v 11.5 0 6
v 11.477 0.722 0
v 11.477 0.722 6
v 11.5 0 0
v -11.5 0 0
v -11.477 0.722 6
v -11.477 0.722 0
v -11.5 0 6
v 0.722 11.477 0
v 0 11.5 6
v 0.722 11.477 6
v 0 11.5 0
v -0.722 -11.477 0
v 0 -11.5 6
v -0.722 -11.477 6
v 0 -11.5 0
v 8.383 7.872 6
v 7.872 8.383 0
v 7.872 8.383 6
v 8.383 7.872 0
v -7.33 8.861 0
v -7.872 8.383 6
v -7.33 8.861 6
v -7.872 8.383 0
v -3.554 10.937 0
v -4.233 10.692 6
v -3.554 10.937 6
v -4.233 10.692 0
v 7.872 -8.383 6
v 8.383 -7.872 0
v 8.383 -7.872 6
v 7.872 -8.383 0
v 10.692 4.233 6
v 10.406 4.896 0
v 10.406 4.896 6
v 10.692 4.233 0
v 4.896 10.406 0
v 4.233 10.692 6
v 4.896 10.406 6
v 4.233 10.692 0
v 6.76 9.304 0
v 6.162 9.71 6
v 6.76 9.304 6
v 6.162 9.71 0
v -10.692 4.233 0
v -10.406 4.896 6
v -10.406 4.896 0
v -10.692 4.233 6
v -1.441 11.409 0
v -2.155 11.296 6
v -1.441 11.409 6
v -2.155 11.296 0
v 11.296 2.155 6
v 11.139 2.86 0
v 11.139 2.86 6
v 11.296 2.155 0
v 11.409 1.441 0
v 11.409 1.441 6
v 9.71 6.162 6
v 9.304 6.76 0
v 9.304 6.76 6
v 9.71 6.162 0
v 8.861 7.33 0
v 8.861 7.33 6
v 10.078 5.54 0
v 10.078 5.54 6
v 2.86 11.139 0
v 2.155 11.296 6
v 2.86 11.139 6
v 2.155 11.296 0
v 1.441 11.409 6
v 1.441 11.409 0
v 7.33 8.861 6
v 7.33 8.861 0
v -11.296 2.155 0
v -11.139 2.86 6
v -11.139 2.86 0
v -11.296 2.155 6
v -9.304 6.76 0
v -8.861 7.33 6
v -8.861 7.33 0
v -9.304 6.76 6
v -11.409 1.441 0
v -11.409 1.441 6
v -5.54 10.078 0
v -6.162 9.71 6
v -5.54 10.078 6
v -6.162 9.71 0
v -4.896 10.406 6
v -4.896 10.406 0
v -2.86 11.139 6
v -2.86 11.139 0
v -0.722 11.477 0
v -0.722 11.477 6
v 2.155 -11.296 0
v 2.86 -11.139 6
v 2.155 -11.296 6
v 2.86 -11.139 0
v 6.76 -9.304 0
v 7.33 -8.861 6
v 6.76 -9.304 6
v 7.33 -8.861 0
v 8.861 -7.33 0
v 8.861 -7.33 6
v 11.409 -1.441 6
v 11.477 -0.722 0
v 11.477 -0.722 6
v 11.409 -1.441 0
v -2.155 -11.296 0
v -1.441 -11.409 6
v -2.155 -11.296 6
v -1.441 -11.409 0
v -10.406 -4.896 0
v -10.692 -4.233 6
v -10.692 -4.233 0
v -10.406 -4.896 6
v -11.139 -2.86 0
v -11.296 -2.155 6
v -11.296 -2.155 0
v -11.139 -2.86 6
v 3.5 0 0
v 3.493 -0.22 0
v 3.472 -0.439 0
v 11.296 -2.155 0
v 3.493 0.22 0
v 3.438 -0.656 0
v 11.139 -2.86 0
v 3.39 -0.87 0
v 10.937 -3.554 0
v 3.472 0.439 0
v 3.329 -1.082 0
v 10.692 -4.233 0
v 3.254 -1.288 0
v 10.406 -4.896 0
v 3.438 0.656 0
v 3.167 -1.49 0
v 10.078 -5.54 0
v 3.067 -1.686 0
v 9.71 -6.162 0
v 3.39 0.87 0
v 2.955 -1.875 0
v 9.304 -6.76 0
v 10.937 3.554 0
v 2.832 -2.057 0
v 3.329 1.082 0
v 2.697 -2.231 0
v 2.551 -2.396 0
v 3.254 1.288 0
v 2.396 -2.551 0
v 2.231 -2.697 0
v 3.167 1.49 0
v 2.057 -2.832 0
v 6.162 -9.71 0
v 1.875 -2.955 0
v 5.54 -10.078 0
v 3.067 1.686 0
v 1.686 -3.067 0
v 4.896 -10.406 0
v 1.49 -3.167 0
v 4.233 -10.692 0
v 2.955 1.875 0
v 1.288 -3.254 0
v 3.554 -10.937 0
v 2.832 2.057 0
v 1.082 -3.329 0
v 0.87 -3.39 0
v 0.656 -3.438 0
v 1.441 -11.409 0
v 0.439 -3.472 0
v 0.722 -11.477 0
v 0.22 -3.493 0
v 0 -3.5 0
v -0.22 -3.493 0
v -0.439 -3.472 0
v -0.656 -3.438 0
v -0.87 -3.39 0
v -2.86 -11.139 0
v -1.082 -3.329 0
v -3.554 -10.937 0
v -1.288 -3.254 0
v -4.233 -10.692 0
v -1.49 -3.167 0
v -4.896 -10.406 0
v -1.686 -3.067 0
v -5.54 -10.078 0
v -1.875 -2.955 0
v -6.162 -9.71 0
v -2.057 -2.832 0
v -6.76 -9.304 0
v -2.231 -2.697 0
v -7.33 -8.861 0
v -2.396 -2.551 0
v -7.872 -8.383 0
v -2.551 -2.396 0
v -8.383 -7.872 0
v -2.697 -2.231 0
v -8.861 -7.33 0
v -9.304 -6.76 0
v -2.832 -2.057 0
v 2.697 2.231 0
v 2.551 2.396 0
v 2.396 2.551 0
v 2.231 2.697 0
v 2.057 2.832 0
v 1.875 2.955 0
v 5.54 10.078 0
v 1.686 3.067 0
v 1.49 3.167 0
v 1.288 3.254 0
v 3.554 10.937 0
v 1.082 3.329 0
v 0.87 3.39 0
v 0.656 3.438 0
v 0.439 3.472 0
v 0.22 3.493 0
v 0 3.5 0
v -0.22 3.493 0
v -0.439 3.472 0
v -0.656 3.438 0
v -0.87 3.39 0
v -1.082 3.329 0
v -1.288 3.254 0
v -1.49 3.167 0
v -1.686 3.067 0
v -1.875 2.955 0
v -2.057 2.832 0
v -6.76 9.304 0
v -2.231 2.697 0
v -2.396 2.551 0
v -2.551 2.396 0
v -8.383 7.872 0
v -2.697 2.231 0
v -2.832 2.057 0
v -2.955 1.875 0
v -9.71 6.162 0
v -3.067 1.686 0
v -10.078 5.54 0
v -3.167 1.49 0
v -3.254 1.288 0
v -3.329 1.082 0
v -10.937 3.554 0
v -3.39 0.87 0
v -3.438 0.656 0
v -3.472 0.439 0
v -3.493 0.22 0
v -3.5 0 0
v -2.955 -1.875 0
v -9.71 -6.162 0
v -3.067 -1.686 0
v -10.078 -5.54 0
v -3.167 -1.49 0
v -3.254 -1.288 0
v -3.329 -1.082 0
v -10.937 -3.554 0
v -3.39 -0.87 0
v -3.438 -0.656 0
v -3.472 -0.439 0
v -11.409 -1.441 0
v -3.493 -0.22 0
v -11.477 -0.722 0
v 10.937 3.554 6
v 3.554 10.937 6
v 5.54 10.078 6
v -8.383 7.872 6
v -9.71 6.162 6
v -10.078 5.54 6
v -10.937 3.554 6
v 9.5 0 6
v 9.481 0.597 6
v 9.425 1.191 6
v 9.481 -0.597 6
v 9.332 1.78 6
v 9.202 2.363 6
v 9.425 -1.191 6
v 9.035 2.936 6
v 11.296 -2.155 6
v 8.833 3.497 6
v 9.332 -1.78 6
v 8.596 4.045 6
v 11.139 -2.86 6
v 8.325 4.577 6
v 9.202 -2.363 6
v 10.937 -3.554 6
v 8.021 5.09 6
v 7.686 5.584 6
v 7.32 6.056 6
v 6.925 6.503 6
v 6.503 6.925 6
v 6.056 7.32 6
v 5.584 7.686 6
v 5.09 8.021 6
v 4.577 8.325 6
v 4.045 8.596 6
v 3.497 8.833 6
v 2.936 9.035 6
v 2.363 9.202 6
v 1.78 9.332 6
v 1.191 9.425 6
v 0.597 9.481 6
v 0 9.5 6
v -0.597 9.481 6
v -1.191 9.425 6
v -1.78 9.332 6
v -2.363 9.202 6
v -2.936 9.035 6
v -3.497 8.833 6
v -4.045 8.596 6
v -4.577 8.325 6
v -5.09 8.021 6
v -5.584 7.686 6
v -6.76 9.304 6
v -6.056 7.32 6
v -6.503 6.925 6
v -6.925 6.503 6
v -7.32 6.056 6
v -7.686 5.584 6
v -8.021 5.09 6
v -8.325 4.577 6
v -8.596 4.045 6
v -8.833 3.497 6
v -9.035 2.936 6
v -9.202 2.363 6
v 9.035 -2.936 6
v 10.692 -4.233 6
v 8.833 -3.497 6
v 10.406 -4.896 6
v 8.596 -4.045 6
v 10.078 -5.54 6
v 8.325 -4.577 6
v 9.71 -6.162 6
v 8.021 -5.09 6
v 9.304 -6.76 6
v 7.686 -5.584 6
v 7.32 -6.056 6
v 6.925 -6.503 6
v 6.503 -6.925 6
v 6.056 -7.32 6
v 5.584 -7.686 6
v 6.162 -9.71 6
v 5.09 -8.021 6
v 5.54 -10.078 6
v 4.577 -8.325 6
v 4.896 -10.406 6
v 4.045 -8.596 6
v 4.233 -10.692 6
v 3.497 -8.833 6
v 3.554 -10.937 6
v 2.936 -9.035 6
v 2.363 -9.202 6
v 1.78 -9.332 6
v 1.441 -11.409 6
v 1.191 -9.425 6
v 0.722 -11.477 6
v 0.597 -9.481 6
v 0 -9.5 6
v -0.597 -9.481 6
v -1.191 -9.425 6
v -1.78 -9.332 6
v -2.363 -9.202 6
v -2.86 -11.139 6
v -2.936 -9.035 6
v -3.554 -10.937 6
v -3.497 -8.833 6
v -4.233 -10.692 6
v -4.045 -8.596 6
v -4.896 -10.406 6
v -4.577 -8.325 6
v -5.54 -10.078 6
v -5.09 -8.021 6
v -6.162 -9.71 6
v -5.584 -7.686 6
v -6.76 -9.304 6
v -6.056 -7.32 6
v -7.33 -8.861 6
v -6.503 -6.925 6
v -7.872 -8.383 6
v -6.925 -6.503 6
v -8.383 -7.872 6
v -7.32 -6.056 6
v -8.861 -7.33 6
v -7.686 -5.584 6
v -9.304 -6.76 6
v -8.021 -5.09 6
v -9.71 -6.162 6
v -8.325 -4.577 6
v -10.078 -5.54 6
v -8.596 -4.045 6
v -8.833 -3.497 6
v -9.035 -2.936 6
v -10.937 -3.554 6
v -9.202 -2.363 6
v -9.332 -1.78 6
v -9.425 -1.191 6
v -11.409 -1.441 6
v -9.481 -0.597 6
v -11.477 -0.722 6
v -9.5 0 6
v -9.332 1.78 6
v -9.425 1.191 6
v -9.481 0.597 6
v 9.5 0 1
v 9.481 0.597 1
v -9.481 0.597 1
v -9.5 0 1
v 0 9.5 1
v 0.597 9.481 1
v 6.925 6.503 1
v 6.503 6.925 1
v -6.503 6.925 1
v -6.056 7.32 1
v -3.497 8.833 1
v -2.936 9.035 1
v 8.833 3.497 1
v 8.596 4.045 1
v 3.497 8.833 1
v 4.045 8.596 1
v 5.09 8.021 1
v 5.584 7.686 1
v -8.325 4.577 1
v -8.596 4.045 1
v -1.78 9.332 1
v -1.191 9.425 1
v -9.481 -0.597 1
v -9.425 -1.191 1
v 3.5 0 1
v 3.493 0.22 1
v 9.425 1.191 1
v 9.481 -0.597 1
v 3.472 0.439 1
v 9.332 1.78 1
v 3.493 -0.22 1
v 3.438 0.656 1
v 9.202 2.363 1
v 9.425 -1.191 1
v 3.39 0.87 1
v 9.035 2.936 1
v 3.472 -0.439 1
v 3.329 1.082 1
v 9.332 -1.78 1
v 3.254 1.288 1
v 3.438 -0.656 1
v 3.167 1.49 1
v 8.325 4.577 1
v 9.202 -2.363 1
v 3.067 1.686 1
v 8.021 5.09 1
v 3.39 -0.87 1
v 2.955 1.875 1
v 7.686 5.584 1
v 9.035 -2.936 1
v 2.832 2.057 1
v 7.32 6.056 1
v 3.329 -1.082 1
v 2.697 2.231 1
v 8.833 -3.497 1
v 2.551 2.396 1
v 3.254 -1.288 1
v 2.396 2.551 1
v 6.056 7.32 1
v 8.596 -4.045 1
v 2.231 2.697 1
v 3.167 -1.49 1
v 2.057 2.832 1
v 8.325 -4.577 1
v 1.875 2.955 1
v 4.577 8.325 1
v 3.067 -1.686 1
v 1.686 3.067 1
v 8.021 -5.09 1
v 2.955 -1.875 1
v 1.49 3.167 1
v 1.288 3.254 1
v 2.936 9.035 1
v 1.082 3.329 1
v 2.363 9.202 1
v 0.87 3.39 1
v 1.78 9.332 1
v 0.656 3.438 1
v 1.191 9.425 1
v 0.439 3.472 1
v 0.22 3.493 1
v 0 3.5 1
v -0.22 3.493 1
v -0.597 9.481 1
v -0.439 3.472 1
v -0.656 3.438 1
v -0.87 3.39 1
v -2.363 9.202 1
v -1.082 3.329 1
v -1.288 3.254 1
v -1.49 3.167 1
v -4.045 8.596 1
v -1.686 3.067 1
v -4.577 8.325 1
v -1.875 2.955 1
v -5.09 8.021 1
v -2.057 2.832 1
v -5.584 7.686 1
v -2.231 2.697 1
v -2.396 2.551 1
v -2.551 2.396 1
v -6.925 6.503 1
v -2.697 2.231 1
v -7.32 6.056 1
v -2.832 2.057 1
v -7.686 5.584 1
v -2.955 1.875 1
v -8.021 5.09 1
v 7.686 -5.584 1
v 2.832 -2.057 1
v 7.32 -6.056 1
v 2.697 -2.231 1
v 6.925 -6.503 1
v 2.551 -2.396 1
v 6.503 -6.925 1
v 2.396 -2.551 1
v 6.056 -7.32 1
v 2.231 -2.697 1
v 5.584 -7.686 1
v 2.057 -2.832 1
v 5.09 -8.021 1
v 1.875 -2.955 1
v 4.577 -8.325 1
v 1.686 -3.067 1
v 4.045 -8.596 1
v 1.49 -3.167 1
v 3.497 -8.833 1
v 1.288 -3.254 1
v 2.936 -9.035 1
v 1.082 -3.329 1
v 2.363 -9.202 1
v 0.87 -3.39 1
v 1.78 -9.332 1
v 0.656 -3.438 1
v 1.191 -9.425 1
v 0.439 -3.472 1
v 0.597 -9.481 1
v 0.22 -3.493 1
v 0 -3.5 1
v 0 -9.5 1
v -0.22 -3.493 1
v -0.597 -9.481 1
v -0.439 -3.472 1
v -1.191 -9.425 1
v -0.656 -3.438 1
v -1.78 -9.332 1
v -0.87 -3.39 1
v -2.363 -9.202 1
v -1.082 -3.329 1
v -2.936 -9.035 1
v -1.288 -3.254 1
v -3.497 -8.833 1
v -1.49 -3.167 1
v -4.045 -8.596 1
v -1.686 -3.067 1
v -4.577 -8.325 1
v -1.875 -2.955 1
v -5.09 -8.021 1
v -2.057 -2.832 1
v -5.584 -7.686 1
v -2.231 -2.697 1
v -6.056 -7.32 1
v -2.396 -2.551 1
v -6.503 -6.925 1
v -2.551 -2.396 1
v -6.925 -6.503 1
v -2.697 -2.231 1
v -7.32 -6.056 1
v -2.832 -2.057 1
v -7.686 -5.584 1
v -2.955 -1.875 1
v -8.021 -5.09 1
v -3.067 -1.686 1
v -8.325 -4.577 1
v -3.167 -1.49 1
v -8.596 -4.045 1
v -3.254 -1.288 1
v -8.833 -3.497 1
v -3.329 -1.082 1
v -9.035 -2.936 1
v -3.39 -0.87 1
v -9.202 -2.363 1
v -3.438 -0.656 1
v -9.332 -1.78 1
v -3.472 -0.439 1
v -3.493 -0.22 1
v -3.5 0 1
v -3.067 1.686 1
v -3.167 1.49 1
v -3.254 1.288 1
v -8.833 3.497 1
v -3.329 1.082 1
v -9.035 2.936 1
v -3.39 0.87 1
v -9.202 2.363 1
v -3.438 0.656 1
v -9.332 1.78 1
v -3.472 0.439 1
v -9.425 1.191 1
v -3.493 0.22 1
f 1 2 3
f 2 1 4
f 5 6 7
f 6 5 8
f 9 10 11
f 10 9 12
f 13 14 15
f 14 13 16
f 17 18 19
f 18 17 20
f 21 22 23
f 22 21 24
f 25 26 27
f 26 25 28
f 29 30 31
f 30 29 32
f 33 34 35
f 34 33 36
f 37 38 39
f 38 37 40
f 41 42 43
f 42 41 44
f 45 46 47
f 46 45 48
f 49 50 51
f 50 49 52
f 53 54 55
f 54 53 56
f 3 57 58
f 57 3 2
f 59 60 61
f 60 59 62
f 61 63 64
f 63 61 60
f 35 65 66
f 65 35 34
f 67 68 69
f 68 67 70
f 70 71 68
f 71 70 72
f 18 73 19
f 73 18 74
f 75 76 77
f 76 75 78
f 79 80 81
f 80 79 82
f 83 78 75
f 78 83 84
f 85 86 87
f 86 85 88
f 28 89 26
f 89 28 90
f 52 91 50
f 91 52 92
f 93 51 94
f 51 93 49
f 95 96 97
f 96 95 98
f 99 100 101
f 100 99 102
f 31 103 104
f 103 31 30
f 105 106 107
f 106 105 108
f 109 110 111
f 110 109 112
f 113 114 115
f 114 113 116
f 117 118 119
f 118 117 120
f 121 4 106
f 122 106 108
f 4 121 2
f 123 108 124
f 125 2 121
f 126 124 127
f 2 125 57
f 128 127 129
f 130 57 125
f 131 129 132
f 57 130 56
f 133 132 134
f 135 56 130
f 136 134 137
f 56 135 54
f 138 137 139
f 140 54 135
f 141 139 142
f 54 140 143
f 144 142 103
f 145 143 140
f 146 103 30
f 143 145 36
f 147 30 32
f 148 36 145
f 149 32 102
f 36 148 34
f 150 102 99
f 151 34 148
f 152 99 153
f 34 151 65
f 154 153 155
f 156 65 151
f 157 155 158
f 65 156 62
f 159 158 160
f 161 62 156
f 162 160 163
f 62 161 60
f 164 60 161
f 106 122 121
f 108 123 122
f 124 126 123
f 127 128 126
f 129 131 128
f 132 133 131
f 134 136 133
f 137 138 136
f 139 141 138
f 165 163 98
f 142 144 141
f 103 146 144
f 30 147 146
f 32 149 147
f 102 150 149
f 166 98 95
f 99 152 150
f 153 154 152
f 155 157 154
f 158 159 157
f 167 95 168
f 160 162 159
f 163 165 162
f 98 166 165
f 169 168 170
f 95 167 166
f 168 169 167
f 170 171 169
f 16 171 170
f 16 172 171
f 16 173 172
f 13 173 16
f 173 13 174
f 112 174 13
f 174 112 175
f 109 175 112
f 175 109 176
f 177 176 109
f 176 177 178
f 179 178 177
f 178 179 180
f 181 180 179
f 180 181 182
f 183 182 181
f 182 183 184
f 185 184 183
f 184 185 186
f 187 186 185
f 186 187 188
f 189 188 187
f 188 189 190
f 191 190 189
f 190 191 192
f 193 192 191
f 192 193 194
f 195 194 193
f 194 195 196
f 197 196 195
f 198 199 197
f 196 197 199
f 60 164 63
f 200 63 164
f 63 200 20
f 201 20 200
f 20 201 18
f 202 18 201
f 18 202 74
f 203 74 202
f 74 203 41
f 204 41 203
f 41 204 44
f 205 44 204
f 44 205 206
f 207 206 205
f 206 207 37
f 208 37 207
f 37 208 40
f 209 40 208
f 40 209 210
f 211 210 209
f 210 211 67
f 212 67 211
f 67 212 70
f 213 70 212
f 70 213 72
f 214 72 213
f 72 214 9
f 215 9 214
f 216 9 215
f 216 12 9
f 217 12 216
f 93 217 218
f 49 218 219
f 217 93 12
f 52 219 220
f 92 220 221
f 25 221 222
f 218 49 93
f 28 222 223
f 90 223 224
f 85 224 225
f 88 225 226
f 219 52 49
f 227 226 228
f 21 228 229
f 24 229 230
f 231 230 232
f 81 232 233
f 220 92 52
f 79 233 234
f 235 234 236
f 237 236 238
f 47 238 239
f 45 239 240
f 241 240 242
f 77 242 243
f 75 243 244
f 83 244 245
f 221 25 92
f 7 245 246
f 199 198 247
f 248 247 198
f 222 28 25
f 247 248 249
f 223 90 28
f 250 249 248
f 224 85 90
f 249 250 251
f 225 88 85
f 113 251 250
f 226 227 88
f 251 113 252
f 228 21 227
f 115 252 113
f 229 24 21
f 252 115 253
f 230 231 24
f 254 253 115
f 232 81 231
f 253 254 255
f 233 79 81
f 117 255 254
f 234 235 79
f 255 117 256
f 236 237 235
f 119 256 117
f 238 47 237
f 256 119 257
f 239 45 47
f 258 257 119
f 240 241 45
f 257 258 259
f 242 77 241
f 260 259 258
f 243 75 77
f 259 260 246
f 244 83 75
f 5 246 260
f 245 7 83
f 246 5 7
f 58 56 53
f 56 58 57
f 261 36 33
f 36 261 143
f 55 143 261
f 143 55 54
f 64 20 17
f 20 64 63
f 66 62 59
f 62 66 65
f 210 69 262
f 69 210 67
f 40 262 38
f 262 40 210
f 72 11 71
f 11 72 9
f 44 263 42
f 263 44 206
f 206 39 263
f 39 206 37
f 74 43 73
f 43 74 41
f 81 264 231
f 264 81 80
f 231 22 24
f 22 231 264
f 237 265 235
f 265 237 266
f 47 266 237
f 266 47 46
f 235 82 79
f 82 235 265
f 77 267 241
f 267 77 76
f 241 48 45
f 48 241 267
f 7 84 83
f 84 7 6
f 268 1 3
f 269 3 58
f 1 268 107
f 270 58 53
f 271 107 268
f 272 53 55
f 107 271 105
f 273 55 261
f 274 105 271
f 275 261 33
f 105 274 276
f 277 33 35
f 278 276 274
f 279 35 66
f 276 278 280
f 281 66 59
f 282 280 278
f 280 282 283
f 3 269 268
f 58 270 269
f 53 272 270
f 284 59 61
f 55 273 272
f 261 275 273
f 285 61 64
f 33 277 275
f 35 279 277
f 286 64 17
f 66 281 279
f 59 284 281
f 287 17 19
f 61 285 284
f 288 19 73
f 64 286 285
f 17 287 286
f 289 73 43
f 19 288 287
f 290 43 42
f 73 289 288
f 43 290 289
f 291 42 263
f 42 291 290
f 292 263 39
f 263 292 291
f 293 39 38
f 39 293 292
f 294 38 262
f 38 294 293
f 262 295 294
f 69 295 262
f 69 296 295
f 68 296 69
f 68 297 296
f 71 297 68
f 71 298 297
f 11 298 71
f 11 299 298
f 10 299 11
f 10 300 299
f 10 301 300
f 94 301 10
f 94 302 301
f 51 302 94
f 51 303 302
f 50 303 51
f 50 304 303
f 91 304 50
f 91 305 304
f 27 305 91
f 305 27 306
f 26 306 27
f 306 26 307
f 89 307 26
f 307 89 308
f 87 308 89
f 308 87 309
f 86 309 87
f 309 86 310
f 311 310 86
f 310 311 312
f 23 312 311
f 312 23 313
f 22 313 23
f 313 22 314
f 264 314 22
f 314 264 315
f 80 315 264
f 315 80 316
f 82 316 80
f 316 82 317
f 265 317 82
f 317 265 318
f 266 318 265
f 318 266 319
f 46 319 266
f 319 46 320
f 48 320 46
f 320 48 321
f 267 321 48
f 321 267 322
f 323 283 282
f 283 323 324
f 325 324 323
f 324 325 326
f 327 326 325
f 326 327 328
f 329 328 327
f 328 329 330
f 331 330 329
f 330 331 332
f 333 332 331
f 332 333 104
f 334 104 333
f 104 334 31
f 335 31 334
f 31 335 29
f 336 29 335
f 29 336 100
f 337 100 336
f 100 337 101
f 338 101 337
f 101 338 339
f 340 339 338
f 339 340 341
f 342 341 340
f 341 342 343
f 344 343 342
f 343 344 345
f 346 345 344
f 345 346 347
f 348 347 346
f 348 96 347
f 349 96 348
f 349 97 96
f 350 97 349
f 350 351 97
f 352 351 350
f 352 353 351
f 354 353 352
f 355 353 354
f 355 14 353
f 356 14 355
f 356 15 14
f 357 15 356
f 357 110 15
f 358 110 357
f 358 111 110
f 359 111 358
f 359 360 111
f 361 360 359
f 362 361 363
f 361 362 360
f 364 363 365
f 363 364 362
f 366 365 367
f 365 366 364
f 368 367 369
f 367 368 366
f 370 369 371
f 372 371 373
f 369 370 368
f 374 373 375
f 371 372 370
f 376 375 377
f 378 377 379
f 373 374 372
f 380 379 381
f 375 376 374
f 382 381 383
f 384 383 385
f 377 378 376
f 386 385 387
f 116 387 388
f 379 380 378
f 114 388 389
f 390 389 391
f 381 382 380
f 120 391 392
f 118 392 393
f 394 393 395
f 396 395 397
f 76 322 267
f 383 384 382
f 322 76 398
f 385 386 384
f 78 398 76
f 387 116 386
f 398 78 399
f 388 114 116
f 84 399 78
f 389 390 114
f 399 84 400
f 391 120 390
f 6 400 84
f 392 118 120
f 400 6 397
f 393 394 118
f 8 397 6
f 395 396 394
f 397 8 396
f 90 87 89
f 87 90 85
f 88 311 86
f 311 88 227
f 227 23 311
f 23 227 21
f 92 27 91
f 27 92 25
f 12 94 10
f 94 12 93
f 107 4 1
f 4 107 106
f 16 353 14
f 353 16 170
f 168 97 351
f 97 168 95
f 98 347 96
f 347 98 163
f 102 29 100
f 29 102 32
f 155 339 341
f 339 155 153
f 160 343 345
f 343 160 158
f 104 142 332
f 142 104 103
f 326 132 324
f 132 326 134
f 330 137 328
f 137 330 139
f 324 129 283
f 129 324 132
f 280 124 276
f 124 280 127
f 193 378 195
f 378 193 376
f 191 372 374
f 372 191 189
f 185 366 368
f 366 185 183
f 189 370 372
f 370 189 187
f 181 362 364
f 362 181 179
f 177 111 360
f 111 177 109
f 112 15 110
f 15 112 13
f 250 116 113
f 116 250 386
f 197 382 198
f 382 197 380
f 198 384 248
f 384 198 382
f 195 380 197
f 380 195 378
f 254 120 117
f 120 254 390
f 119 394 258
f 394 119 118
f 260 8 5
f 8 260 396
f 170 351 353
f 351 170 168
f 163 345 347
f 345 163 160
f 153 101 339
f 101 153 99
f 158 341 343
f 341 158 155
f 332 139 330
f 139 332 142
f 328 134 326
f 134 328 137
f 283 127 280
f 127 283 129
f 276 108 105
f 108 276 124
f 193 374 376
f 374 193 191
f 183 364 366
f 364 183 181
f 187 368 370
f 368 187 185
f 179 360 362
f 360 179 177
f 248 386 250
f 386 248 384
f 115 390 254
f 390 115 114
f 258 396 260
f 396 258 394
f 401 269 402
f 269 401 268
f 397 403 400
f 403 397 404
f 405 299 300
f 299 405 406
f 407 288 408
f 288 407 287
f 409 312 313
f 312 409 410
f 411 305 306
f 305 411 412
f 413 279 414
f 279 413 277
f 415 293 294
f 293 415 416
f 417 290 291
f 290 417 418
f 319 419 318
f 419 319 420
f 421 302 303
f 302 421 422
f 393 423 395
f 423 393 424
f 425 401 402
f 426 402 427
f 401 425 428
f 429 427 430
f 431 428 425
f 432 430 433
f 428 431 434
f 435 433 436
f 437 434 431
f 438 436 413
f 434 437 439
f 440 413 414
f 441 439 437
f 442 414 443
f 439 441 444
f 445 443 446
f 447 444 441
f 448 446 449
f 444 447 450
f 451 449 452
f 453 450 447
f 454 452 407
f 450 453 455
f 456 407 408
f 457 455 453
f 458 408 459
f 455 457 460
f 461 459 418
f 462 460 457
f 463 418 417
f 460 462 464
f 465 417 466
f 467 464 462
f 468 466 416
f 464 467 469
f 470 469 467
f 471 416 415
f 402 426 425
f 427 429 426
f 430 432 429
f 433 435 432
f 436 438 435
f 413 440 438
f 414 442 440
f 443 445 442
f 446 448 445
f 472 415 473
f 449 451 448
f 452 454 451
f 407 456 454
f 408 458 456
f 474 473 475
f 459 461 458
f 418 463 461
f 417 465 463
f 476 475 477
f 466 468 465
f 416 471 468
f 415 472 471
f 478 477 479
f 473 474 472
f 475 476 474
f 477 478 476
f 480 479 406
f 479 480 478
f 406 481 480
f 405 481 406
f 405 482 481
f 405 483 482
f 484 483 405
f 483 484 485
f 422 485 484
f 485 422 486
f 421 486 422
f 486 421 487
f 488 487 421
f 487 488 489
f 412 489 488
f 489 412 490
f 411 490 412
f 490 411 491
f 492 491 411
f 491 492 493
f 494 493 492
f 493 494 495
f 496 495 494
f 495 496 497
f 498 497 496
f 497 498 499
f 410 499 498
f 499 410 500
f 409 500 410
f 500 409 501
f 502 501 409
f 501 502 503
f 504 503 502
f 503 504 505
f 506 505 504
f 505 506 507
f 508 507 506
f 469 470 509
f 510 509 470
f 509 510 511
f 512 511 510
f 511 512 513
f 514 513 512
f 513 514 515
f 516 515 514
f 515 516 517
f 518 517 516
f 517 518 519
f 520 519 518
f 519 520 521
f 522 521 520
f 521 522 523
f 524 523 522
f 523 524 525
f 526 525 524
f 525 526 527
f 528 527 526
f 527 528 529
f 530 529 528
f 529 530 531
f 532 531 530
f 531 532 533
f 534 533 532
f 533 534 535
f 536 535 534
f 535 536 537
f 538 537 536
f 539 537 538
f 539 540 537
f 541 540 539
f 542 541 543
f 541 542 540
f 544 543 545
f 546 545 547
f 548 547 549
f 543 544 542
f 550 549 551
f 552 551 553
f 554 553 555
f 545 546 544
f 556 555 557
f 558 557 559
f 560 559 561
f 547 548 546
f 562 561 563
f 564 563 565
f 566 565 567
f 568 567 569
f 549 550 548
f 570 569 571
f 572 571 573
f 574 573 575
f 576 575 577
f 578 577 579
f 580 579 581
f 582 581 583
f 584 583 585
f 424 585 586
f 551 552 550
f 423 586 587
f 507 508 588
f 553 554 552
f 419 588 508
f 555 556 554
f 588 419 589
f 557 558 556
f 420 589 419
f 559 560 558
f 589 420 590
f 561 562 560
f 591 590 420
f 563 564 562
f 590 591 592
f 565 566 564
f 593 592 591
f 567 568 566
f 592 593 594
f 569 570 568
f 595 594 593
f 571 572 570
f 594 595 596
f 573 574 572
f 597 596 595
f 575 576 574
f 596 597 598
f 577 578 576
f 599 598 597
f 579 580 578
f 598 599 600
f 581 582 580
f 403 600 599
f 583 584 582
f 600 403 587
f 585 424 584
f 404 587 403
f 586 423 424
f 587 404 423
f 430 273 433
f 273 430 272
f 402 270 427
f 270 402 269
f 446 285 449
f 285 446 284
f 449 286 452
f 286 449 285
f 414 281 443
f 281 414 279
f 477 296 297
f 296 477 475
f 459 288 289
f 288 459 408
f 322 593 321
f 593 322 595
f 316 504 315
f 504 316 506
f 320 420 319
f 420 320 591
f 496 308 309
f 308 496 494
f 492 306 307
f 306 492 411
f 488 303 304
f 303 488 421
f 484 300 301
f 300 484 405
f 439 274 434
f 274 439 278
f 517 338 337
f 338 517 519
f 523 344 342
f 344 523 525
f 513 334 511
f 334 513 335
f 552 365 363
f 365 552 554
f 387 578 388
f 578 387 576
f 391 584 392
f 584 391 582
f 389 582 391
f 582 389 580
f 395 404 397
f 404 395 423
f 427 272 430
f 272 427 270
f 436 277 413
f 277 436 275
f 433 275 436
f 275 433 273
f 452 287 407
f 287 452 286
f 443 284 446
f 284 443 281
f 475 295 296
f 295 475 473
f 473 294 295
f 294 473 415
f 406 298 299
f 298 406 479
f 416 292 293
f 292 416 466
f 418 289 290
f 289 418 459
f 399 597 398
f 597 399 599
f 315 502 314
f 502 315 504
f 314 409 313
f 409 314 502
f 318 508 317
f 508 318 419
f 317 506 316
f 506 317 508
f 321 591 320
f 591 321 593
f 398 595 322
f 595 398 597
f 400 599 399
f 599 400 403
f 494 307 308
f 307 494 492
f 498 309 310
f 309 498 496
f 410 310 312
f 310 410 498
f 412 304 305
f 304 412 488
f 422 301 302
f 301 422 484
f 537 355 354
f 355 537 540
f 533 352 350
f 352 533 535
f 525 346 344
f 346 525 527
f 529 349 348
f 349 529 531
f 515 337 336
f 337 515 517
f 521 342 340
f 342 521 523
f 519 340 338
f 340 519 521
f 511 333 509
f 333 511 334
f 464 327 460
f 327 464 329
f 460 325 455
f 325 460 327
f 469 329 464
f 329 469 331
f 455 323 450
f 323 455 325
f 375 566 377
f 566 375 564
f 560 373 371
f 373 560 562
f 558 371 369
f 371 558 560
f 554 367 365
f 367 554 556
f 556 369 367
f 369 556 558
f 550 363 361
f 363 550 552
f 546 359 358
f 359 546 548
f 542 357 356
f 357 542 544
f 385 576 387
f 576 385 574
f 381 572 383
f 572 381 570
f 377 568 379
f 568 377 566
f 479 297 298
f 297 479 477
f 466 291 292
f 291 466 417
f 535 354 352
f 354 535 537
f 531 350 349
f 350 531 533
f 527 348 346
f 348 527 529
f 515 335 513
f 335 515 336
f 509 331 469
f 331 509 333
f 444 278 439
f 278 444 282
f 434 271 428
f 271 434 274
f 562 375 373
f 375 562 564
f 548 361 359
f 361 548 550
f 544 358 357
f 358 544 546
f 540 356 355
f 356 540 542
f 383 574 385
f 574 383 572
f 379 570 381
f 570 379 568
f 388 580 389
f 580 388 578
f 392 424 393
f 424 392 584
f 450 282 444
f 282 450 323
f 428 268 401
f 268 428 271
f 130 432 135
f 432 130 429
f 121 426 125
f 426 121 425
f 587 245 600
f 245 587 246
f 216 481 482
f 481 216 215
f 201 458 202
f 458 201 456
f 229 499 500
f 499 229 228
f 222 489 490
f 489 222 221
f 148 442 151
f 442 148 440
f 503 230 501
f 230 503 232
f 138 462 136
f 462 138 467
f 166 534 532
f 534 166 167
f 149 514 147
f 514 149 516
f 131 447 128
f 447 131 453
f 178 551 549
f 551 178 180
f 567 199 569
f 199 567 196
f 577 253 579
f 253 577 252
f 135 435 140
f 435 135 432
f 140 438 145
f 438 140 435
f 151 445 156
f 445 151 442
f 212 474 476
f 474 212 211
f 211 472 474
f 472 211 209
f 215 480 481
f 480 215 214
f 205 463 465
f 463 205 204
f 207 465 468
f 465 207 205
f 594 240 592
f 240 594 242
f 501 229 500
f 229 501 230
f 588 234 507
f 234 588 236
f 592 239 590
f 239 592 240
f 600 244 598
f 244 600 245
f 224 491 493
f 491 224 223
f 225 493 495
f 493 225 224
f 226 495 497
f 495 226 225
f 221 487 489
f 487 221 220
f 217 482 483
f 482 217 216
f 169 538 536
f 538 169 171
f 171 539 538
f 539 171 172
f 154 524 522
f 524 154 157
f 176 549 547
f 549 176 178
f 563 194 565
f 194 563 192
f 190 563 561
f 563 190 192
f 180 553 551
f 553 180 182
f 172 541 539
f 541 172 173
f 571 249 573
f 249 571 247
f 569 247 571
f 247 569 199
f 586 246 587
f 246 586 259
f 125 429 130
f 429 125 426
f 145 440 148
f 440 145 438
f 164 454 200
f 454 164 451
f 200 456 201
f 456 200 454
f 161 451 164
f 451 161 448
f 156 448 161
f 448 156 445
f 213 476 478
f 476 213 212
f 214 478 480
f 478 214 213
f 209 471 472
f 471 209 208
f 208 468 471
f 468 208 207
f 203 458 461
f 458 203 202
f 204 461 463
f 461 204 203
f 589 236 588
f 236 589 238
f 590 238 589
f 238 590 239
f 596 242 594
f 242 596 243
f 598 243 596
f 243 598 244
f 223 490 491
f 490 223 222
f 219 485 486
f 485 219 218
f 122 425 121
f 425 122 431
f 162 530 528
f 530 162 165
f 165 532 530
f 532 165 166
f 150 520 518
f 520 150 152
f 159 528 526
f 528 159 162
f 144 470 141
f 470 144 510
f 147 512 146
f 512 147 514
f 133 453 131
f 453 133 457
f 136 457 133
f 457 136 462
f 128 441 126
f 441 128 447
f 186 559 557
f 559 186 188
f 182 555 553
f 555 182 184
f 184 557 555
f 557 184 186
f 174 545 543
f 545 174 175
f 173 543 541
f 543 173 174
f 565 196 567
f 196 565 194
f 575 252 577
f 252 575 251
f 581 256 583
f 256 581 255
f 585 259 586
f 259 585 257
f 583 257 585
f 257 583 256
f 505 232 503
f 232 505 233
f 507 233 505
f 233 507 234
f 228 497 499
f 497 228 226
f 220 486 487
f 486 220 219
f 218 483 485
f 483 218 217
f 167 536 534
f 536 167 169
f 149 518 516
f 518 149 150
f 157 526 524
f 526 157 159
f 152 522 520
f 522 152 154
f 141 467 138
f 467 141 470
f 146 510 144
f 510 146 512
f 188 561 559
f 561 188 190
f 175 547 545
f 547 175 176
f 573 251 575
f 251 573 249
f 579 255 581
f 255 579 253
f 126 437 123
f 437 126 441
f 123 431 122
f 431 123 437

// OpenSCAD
d1 = 23;
d_lens = 7;
h = 2;

difference() {
    union() {
        cylinder(d=d1, h=3*h, $fn=100);
    }
    translate([0,0,1]) cylinder(d=d1-4, h=h+10, $fn=100);    
    translate([0,0,-5]) cylinder(d=d_lens, h=h+10, $fn=100);    
}
